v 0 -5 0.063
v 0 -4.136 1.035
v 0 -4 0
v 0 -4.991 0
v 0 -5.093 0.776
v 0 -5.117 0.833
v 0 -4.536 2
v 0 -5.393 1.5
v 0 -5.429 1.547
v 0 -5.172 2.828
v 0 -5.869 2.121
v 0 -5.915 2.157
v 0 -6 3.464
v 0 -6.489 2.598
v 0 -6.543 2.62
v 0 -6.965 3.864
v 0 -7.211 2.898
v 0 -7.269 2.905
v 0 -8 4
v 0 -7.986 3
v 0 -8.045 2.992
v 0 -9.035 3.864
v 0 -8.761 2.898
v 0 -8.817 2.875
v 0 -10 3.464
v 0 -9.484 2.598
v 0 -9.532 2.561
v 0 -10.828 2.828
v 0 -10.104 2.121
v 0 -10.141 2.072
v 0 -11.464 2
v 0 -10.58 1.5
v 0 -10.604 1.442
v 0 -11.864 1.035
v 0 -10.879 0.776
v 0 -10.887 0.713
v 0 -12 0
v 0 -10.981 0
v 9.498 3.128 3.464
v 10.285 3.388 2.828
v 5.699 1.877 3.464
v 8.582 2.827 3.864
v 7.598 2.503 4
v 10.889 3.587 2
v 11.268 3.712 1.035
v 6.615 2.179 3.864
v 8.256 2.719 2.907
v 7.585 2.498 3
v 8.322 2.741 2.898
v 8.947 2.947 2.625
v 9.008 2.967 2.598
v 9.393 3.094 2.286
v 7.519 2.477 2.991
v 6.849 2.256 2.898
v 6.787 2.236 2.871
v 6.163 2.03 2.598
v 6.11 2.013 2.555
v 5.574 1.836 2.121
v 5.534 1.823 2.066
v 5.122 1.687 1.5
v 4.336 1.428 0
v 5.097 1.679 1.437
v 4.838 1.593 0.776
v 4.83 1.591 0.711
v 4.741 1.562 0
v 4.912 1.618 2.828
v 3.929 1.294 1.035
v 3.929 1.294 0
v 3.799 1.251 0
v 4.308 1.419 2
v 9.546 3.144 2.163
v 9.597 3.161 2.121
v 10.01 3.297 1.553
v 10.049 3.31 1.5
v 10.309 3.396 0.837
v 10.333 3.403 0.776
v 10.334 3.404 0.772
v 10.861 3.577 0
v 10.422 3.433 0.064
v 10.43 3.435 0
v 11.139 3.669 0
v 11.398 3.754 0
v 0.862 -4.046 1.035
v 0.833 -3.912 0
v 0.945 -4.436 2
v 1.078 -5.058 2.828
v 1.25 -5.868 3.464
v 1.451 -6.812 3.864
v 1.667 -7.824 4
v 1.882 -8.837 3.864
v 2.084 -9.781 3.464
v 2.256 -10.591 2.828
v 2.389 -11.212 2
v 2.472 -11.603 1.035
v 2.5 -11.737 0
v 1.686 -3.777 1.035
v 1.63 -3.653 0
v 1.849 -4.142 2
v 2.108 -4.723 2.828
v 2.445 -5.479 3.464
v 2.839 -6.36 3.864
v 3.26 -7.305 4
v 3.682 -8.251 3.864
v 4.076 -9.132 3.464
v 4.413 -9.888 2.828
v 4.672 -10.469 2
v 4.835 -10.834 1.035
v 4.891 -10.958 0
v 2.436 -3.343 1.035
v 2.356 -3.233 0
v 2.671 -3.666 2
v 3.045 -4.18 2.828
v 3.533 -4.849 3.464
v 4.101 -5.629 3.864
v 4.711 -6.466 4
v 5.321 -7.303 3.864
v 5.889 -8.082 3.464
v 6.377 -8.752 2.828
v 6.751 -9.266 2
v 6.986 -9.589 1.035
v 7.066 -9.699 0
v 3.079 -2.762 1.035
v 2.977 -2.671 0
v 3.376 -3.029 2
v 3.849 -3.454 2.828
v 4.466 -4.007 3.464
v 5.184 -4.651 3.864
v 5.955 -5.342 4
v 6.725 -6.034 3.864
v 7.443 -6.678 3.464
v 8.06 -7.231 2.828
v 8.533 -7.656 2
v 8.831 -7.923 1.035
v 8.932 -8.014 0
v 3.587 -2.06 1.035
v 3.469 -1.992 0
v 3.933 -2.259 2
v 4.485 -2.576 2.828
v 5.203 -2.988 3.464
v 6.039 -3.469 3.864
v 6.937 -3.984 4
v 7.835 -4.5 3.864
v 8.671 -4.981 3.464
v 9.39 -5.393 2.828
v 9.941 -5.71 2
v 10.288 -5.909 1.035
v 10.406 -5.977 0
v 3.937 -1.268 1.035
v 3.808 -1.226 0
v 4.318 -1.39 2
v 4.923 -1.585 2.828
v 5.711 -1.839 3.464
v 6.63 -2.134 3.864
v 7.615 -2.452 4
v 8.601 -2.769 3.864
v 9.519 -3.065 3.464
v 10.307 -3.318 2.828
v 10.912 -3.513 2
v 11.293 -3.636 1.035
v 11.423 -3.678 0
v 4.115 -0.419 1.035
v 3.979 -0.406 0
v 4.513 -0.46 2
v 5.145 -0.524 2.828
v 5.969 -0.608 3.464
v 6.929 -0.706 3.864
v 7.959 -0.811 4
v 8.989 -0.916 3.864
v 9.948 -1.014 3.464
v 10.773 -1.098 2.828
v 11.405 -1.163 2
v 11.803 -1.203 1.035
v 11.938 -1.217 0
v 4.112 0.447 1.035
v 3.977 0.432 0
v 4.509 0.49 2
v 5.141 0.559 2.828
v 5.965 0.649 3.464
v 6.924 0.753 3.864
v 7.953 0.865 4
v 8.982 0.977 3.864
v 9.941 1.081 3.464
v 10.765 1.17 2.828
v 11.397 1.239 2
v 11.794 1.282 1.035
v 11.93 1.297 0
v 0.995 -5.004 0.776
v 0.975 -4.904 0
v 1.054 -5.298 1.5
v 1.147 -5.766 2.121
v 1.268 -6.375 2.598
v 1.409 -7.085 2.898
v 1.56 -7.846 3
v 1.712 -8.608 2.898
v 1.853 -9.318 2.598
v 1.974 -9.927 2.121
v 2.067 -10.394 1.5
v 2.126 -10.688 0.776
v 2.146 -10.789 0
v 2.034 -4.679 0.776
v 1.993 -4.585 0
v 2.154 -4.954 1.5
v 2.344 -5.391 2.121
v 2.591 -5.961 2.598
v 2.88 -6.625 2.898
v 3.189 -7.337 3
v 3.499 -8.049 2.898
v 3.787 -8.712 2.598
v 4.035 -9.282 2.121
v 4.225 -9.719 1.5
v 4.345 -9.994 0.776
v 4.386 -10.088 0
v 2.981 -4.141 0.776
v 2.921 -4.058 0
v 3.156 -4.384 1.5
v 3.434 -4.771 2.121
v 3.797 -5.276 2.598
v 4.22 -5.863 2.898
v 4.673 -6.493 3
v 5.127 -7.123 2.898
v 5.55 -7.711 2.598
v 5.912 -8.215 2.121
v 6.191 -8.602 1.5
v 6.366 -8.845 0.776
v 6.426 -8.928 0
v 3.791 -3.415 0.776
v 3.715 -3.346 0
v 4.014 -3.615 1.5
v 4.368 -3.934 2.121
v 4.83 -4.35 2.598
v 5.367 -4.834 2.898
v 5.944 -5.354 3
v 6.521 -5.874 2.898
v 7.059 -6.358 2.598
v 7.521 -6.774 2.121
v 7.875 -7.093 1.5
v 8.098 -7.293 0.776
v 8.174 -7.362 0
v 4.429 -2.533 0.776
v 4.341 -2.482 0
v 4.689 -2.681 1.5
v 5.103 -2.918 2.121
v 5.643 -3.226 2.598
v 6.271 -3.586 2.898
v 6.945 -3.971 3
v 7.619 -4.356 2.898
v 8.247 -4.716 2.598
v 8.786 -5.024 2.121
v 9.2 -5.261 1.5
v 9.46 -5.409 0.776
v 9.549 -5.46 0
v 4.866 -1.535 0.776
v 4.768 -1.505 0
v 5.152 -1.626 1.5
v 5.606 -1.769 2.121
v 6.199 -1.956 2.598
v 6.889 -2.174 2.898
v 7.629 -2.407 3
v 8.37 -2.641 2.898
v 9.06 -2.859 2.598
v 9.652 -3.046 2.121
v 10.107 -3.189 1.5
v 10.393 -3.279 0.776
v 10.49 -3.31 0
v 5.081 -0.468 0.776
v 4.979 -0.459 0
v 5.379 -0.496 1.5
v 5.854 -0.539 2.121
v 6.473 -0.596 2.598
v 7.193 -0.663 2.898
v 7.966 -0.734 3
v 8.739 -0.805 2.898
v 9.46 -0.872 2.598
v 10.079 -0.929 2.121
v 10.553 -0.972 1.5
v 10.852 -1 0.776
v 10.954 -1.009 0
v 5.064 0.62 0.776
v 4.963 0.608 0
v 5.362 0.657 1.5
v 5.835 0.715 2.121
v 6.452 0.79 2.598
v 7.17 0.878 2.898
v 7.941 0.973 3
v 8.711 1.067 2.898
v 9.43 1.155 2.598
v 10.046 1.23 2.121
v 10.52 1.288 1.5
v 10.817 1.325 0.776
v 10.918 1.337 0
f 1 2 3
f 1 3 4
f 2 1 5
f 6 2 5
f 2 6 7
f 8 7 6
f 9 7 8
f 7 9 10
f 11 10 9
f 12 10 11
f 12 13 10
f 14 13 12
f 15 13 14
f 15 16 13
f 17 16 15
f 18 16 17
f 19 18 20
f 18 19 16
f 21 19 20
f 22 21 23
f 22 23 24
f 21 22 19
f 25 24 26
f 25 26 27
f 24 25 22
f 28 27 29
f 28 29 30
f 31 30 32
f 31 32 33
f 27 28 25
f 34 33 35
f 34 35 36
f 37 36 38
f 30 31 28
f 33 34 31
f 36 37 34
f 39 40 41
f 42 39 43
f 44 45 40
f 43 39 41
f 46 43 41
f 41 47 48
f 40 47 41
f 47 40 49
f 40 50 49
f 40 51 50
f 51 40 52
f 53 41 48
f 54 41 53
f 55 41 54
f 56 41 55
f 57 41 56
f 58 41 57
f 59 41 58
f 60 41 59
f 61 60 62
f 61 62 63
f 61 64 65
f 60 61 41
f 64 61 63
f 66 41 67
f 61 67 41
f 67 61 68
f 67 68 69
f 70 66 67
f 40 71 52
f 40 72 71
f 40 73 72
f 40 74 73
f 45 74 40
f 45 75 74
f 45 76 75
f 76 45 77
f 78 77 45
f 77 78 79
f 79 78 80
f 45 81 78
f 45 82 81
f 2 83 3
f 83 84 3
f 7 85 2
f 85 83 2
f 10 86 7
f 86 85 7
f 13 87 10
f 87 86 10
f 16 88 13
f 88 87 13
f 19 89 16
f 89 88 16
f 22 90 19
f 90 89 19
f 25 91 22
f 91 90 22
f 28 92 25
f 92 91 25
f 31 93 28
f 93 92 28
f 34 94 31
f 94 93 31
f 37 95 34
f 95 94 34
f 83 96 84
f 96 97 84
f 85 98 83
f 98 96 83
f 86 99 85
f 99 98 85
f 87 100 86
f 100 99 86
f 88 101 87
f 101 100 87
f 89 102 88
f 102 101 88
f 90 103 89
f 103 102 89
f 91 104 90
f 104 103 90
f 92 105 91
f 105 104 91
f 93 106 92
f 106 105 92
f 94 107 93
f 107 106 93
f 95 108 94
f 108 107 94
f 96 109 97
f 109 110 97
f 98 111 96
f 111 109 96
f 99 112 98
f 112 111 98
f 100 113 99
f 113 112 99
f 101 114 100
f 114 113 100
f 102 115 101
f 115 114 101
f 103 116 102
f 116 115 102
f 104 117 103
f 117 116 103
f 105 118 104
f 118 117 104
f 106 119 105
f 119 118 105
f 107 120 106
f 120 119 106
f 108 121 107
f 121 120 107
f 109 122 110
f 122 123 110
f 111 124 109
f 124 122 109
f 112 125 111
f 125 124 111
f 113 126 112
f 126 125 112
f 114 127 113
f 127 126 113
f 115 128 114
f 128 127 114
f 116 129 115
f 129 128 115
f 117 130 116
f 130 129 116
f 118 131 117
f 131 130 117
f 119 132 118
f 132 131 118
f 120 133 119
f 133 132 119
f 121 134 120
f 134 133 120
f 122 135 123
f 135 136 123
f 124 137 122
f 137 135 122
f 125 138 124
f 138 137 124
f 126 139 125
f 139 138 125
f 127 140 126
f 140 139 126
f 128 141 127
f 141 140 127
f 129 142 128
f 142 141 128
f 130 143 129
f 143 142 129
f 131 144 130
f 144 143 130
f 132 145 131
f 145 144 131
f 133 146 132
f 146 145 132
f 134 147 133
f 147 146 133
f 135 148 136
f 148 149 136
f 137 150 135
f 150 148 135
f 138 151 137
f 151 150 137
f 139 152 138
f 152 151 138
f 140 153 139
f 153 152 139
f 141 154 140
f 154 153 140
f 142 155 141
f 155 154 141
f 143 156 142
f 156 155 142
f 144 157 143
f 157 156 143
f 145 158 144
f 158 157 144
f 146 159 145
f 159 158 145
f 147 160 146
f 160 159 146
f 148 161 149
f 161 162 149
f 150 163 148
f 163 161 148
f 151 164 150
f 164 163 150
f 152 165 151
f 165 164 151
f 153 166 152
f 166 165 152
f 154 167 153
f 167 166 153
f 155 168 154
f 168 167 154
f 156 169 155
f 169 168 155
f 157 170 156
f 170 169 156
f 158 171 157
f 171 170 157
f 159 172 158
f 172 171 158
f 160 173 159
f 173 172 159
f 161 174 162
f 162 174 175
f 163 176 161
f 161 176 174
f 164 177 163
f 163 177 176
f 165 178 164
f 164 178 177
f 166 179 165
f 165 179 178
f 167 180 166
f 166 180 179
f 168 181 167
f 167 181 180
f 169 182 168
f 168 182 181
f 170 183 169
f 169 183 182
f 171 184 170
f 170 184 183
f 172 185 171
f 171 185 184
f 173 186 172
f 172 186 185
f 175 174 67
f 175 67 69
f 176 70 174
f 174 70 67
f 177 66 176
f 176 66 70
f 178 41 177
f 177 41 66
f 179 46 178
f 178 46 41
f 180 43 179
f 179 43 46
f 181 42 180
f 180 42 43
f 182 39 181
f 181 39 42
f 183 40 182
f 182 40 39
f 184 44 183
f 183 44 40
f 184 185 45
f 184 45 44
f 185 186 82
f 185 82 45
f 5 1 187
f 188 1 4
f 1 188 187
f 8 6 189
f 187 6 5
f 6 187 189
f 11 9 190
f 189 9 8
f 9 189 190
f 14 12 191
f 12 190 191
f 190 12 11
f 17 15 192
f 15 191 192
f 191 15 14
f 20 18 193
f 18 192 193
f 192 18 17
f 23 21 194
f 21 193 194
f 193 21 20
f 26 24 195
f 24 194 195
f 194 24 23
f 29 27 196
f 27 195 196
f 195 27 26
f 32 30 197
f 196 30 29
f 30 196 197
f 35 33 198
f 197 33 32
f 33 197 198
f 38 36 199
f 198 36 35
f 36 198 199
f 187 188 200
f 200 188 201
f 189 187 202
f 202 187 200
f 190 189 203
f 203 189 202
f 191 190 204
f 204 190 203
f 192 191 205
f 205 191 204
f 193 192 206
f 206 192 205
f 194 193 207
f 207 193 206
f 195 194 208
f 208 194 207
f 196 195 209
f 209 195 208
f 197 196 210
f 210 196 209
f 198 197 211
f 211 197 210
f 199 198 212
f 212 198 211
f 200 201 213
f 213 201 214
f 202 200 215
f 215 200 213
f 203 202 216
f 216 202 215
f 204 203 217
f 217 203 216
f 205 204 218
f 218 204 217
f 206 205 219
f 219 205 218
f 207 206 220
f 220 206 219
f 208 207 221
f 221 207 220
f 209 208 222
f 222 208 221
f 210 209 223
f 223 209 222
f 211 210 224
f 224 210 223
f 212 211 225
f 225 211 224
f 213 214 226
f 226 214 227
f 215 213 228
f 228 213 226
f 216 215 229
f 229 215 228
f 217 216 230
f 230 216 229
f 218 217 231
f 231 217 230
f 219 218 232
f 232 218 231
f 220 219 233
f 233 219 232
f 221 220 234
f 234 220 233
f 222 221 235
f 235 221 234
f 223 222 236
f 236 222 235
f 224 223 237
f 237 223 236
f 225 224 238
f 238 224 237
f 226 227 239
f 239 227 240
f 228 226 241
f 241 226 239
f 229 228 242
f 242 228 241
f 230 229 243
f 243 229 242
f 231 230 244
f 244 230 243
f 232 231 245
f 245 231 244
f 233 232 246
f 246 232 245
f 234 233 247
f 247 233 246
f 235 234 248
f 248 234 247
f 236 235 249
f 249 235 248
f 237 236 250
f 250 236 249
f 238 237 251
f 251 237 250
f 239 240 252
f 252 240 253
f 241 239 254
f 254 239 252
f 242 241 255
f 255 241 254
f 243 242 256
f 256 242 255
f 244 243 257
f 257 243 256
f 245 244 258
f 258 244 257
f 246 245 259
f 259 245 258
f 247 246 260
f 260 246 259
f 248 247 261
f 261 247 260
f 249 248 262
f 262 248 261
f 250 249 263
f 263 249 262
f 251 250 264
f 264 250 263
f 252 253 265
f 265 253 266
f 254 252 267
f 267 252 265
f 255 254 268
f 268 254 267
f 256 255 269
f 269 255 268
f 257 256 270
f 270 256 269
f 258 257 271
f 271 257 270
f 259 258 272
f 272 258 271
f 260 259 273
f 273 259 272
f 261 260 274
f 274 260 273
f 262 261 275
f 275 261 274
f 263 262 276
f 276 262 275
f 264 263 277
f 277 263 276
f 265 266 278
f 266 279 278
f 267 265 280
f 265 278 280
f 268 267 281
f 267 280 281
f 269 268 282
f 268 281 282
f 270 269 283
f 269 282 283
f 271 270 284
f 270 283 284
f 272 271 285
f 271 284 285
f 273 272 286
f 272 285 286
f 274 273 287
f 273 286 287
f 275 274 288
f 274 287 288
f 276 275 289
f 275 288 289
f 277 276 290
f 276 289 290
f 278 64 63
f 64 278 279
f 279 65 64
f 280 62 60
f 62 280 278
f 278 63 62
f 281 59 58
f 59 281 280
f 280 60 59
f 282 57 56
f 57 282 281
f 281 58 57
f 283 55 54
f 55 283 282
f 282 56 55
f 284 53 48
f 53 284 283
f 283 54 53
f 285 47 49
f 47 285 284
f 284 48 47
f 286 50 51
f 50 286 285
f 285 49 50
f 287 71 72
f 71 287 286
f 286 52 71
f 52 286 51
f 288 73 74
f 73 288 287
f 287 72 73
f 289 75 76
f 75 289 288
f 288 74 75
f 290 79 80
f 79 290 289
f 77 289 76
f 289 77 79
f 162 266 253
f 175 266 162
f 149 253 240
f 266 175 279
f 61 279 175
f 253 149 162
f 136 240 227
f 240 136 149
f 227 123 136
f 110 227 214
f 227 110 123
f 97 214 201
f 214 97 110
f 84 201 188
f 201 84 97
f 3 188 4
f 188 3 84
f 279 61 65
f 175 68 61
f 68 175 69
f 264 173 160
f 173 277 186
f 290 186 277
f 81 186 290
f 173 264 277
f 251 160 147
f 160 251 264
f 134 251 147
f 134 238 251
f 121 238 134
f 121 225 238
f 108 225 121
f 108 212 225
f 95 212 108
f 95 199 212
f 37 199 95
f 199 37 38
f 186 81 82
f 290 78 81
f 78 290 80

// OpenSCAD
// file: ../build_environments.scad
// build_environments.scad: modules to build level sections
//

module pool(diameter=10.0, wall_height=2.0, step_width=3.0, connections=[])
{
    difference() {
        union() {
        difference() {
            cylinder(h=0.5,r1=diameter+step_width,r2=diameter+step_width,$fn=48);
            translate([0,0,-0.1])
                cylinder(h=0.7,r1=diameter,r2=diameter,$fn=48);
        }
        difference() {
            cylinder(h=wall_height,r1=diameter+step_width+1.0,r2=diameter+step_width+1.0,$fn=48);
            translate([0,0,-0.1])
                cylinder(h=wall_height+0.2,r1=diameter+step_width,r2=diameter+step_width,$fn=48);
        }
        }
    
        for (c = connections)
        {
            rotate([0,90,0]) {
                angle = atan2(c[1],c[0]);
                rotate([-angle,0,0]) {
                    cylinder(h=diameter+5.0,r1=c[2],r2=c[2],$fn=48);
                }
            }
        }
    }
}

module straight(length=10.0, width=2.0, dy1=0.0, dy2=0.0, dz=0.0)
{
    dims = [0, 0, 0, 0, 0, (dz/length)];
    matrix = [
        [ 1, dims[0], dims[1], 0 ],
        [ dims[2], 1, dims[4], 0 ],
        [ dims[5], dims[3], 1, 0 ],
        [ 0, 0, 0, 1 ]
    ];
    multmatrix(matrix)
    difference() {
        translate([dy1,0,0])
        union() {
            rotate([0,90,0]) {
                difference() {
                    cylinder(h=(length-dy1-dy2),r1=width+1.0,r2=width+1.0,$fn=24);
                    translate([0,0,-0.1])
                        cylinder(h=(length-dy1-dy2+0.2),r1=width,r2=width,$fn=24);
                }
                difference() {
                    cylinder(h=1.0,r1=width+2.0,r2=width+2.0,$fn=24);
                    translate([0,0,-0.1])
                        cylinder(h=1.2,r1=width,r2=width,$fn=24);
                }
                translate([0,0,(length-dy1-dy2)-1.0]) {
                    difference() {
                        cylinder(h=1.0,r1=width+2.0,r2=width+2.0,$fn=24);
                        translate([0,0,-0.1])
                            cylinder(h=1.2,r1=width,r2=width,$fn=24);
                    }
                }
            }
        }
        translate([0,0,-(2*width+4.0)/2])
            cube([3*length,3*length,2*width+4.0],center=true);
    }
}

module curve(p0=[0,0], center=[0,0], dir=1, angle=0.0, width=2.0)
{
    radius = sqrt((p0[0]-center[0])*(p0[0]-center[0]) + (p0[1]-center[1])*(p0[1]-center[1]));
    if (dir == 0) {
        difference() {
            rotate([0,0,-90])
            difference() {
                rotate_extrude(angle = angle, convexity = 10, $fn=32)
                    translate([radius, 0, 0])
                        circle(r = width+1.0,$fn=24);
                rotate([0,0,-1.0])
                    rotate_extrude(angle = angle+2.0, convexity = 10, $fn=32)
                        translate([radius, 0, 0])
                            circle(r = width,$fn=24);
            }
            translate([0,0,-(2*width+4.0)/2])
                cube([5*radius,5*radius,2*width+4.0],center=true);
        }
    }
    else {
        difference() {
            rotate([0,0,90])
            difference() {
                rotate_extrude(angle = -angle, convexity = 10, $fn=32)
                    translate([radius, 0, 0])
                        circle(r = width+1.0,$fn=24);
                rotate([0,0,1.0])
                    rotate_extrude(angle = -angle-2.0, convexity = 10, $fn=32)
                        translate([radius, 0, 0])
                            circle(r = width,$fn=24);
            }
            translate([0,0,-(2*width+4.0)/2])
                cube([5*radius,5*radius,2*width+4.0],center=true);
        }
    }

}

// test pool
//pool(diameter=12.0000, wall_height=3.0000, step_width=3.0000, connections=[[0.0000,-26.0000,2.0000], [23.6074,0.0000,2.0000]]);

// test straight, slope
//straight(length=26.0000, width=2.0000, dy1=11.8322, dy2=6.7082, dz=0.0000);
//straight(length=29.1549, width=12.0000, dy1=0.0000, dy2=0.0000, dz=-15.0000);

// test curve
//curve(p0=[23.6074, 0.0000], center=[23.6074, 5.0000], dir=0, angle=60.1011, width=2.0000);
//curve(p0=[33.6426, 12.4219], center=[37.9771, 9.9295], dir=1, angle=120.4627, width=2.0000);
// main file
use <../build_environments.scad>;
curve(p0=[-65.8836, 125.7769], center=[-65.7171, 133.7752], dir=0, angle=108.2309, width=3.0000);
